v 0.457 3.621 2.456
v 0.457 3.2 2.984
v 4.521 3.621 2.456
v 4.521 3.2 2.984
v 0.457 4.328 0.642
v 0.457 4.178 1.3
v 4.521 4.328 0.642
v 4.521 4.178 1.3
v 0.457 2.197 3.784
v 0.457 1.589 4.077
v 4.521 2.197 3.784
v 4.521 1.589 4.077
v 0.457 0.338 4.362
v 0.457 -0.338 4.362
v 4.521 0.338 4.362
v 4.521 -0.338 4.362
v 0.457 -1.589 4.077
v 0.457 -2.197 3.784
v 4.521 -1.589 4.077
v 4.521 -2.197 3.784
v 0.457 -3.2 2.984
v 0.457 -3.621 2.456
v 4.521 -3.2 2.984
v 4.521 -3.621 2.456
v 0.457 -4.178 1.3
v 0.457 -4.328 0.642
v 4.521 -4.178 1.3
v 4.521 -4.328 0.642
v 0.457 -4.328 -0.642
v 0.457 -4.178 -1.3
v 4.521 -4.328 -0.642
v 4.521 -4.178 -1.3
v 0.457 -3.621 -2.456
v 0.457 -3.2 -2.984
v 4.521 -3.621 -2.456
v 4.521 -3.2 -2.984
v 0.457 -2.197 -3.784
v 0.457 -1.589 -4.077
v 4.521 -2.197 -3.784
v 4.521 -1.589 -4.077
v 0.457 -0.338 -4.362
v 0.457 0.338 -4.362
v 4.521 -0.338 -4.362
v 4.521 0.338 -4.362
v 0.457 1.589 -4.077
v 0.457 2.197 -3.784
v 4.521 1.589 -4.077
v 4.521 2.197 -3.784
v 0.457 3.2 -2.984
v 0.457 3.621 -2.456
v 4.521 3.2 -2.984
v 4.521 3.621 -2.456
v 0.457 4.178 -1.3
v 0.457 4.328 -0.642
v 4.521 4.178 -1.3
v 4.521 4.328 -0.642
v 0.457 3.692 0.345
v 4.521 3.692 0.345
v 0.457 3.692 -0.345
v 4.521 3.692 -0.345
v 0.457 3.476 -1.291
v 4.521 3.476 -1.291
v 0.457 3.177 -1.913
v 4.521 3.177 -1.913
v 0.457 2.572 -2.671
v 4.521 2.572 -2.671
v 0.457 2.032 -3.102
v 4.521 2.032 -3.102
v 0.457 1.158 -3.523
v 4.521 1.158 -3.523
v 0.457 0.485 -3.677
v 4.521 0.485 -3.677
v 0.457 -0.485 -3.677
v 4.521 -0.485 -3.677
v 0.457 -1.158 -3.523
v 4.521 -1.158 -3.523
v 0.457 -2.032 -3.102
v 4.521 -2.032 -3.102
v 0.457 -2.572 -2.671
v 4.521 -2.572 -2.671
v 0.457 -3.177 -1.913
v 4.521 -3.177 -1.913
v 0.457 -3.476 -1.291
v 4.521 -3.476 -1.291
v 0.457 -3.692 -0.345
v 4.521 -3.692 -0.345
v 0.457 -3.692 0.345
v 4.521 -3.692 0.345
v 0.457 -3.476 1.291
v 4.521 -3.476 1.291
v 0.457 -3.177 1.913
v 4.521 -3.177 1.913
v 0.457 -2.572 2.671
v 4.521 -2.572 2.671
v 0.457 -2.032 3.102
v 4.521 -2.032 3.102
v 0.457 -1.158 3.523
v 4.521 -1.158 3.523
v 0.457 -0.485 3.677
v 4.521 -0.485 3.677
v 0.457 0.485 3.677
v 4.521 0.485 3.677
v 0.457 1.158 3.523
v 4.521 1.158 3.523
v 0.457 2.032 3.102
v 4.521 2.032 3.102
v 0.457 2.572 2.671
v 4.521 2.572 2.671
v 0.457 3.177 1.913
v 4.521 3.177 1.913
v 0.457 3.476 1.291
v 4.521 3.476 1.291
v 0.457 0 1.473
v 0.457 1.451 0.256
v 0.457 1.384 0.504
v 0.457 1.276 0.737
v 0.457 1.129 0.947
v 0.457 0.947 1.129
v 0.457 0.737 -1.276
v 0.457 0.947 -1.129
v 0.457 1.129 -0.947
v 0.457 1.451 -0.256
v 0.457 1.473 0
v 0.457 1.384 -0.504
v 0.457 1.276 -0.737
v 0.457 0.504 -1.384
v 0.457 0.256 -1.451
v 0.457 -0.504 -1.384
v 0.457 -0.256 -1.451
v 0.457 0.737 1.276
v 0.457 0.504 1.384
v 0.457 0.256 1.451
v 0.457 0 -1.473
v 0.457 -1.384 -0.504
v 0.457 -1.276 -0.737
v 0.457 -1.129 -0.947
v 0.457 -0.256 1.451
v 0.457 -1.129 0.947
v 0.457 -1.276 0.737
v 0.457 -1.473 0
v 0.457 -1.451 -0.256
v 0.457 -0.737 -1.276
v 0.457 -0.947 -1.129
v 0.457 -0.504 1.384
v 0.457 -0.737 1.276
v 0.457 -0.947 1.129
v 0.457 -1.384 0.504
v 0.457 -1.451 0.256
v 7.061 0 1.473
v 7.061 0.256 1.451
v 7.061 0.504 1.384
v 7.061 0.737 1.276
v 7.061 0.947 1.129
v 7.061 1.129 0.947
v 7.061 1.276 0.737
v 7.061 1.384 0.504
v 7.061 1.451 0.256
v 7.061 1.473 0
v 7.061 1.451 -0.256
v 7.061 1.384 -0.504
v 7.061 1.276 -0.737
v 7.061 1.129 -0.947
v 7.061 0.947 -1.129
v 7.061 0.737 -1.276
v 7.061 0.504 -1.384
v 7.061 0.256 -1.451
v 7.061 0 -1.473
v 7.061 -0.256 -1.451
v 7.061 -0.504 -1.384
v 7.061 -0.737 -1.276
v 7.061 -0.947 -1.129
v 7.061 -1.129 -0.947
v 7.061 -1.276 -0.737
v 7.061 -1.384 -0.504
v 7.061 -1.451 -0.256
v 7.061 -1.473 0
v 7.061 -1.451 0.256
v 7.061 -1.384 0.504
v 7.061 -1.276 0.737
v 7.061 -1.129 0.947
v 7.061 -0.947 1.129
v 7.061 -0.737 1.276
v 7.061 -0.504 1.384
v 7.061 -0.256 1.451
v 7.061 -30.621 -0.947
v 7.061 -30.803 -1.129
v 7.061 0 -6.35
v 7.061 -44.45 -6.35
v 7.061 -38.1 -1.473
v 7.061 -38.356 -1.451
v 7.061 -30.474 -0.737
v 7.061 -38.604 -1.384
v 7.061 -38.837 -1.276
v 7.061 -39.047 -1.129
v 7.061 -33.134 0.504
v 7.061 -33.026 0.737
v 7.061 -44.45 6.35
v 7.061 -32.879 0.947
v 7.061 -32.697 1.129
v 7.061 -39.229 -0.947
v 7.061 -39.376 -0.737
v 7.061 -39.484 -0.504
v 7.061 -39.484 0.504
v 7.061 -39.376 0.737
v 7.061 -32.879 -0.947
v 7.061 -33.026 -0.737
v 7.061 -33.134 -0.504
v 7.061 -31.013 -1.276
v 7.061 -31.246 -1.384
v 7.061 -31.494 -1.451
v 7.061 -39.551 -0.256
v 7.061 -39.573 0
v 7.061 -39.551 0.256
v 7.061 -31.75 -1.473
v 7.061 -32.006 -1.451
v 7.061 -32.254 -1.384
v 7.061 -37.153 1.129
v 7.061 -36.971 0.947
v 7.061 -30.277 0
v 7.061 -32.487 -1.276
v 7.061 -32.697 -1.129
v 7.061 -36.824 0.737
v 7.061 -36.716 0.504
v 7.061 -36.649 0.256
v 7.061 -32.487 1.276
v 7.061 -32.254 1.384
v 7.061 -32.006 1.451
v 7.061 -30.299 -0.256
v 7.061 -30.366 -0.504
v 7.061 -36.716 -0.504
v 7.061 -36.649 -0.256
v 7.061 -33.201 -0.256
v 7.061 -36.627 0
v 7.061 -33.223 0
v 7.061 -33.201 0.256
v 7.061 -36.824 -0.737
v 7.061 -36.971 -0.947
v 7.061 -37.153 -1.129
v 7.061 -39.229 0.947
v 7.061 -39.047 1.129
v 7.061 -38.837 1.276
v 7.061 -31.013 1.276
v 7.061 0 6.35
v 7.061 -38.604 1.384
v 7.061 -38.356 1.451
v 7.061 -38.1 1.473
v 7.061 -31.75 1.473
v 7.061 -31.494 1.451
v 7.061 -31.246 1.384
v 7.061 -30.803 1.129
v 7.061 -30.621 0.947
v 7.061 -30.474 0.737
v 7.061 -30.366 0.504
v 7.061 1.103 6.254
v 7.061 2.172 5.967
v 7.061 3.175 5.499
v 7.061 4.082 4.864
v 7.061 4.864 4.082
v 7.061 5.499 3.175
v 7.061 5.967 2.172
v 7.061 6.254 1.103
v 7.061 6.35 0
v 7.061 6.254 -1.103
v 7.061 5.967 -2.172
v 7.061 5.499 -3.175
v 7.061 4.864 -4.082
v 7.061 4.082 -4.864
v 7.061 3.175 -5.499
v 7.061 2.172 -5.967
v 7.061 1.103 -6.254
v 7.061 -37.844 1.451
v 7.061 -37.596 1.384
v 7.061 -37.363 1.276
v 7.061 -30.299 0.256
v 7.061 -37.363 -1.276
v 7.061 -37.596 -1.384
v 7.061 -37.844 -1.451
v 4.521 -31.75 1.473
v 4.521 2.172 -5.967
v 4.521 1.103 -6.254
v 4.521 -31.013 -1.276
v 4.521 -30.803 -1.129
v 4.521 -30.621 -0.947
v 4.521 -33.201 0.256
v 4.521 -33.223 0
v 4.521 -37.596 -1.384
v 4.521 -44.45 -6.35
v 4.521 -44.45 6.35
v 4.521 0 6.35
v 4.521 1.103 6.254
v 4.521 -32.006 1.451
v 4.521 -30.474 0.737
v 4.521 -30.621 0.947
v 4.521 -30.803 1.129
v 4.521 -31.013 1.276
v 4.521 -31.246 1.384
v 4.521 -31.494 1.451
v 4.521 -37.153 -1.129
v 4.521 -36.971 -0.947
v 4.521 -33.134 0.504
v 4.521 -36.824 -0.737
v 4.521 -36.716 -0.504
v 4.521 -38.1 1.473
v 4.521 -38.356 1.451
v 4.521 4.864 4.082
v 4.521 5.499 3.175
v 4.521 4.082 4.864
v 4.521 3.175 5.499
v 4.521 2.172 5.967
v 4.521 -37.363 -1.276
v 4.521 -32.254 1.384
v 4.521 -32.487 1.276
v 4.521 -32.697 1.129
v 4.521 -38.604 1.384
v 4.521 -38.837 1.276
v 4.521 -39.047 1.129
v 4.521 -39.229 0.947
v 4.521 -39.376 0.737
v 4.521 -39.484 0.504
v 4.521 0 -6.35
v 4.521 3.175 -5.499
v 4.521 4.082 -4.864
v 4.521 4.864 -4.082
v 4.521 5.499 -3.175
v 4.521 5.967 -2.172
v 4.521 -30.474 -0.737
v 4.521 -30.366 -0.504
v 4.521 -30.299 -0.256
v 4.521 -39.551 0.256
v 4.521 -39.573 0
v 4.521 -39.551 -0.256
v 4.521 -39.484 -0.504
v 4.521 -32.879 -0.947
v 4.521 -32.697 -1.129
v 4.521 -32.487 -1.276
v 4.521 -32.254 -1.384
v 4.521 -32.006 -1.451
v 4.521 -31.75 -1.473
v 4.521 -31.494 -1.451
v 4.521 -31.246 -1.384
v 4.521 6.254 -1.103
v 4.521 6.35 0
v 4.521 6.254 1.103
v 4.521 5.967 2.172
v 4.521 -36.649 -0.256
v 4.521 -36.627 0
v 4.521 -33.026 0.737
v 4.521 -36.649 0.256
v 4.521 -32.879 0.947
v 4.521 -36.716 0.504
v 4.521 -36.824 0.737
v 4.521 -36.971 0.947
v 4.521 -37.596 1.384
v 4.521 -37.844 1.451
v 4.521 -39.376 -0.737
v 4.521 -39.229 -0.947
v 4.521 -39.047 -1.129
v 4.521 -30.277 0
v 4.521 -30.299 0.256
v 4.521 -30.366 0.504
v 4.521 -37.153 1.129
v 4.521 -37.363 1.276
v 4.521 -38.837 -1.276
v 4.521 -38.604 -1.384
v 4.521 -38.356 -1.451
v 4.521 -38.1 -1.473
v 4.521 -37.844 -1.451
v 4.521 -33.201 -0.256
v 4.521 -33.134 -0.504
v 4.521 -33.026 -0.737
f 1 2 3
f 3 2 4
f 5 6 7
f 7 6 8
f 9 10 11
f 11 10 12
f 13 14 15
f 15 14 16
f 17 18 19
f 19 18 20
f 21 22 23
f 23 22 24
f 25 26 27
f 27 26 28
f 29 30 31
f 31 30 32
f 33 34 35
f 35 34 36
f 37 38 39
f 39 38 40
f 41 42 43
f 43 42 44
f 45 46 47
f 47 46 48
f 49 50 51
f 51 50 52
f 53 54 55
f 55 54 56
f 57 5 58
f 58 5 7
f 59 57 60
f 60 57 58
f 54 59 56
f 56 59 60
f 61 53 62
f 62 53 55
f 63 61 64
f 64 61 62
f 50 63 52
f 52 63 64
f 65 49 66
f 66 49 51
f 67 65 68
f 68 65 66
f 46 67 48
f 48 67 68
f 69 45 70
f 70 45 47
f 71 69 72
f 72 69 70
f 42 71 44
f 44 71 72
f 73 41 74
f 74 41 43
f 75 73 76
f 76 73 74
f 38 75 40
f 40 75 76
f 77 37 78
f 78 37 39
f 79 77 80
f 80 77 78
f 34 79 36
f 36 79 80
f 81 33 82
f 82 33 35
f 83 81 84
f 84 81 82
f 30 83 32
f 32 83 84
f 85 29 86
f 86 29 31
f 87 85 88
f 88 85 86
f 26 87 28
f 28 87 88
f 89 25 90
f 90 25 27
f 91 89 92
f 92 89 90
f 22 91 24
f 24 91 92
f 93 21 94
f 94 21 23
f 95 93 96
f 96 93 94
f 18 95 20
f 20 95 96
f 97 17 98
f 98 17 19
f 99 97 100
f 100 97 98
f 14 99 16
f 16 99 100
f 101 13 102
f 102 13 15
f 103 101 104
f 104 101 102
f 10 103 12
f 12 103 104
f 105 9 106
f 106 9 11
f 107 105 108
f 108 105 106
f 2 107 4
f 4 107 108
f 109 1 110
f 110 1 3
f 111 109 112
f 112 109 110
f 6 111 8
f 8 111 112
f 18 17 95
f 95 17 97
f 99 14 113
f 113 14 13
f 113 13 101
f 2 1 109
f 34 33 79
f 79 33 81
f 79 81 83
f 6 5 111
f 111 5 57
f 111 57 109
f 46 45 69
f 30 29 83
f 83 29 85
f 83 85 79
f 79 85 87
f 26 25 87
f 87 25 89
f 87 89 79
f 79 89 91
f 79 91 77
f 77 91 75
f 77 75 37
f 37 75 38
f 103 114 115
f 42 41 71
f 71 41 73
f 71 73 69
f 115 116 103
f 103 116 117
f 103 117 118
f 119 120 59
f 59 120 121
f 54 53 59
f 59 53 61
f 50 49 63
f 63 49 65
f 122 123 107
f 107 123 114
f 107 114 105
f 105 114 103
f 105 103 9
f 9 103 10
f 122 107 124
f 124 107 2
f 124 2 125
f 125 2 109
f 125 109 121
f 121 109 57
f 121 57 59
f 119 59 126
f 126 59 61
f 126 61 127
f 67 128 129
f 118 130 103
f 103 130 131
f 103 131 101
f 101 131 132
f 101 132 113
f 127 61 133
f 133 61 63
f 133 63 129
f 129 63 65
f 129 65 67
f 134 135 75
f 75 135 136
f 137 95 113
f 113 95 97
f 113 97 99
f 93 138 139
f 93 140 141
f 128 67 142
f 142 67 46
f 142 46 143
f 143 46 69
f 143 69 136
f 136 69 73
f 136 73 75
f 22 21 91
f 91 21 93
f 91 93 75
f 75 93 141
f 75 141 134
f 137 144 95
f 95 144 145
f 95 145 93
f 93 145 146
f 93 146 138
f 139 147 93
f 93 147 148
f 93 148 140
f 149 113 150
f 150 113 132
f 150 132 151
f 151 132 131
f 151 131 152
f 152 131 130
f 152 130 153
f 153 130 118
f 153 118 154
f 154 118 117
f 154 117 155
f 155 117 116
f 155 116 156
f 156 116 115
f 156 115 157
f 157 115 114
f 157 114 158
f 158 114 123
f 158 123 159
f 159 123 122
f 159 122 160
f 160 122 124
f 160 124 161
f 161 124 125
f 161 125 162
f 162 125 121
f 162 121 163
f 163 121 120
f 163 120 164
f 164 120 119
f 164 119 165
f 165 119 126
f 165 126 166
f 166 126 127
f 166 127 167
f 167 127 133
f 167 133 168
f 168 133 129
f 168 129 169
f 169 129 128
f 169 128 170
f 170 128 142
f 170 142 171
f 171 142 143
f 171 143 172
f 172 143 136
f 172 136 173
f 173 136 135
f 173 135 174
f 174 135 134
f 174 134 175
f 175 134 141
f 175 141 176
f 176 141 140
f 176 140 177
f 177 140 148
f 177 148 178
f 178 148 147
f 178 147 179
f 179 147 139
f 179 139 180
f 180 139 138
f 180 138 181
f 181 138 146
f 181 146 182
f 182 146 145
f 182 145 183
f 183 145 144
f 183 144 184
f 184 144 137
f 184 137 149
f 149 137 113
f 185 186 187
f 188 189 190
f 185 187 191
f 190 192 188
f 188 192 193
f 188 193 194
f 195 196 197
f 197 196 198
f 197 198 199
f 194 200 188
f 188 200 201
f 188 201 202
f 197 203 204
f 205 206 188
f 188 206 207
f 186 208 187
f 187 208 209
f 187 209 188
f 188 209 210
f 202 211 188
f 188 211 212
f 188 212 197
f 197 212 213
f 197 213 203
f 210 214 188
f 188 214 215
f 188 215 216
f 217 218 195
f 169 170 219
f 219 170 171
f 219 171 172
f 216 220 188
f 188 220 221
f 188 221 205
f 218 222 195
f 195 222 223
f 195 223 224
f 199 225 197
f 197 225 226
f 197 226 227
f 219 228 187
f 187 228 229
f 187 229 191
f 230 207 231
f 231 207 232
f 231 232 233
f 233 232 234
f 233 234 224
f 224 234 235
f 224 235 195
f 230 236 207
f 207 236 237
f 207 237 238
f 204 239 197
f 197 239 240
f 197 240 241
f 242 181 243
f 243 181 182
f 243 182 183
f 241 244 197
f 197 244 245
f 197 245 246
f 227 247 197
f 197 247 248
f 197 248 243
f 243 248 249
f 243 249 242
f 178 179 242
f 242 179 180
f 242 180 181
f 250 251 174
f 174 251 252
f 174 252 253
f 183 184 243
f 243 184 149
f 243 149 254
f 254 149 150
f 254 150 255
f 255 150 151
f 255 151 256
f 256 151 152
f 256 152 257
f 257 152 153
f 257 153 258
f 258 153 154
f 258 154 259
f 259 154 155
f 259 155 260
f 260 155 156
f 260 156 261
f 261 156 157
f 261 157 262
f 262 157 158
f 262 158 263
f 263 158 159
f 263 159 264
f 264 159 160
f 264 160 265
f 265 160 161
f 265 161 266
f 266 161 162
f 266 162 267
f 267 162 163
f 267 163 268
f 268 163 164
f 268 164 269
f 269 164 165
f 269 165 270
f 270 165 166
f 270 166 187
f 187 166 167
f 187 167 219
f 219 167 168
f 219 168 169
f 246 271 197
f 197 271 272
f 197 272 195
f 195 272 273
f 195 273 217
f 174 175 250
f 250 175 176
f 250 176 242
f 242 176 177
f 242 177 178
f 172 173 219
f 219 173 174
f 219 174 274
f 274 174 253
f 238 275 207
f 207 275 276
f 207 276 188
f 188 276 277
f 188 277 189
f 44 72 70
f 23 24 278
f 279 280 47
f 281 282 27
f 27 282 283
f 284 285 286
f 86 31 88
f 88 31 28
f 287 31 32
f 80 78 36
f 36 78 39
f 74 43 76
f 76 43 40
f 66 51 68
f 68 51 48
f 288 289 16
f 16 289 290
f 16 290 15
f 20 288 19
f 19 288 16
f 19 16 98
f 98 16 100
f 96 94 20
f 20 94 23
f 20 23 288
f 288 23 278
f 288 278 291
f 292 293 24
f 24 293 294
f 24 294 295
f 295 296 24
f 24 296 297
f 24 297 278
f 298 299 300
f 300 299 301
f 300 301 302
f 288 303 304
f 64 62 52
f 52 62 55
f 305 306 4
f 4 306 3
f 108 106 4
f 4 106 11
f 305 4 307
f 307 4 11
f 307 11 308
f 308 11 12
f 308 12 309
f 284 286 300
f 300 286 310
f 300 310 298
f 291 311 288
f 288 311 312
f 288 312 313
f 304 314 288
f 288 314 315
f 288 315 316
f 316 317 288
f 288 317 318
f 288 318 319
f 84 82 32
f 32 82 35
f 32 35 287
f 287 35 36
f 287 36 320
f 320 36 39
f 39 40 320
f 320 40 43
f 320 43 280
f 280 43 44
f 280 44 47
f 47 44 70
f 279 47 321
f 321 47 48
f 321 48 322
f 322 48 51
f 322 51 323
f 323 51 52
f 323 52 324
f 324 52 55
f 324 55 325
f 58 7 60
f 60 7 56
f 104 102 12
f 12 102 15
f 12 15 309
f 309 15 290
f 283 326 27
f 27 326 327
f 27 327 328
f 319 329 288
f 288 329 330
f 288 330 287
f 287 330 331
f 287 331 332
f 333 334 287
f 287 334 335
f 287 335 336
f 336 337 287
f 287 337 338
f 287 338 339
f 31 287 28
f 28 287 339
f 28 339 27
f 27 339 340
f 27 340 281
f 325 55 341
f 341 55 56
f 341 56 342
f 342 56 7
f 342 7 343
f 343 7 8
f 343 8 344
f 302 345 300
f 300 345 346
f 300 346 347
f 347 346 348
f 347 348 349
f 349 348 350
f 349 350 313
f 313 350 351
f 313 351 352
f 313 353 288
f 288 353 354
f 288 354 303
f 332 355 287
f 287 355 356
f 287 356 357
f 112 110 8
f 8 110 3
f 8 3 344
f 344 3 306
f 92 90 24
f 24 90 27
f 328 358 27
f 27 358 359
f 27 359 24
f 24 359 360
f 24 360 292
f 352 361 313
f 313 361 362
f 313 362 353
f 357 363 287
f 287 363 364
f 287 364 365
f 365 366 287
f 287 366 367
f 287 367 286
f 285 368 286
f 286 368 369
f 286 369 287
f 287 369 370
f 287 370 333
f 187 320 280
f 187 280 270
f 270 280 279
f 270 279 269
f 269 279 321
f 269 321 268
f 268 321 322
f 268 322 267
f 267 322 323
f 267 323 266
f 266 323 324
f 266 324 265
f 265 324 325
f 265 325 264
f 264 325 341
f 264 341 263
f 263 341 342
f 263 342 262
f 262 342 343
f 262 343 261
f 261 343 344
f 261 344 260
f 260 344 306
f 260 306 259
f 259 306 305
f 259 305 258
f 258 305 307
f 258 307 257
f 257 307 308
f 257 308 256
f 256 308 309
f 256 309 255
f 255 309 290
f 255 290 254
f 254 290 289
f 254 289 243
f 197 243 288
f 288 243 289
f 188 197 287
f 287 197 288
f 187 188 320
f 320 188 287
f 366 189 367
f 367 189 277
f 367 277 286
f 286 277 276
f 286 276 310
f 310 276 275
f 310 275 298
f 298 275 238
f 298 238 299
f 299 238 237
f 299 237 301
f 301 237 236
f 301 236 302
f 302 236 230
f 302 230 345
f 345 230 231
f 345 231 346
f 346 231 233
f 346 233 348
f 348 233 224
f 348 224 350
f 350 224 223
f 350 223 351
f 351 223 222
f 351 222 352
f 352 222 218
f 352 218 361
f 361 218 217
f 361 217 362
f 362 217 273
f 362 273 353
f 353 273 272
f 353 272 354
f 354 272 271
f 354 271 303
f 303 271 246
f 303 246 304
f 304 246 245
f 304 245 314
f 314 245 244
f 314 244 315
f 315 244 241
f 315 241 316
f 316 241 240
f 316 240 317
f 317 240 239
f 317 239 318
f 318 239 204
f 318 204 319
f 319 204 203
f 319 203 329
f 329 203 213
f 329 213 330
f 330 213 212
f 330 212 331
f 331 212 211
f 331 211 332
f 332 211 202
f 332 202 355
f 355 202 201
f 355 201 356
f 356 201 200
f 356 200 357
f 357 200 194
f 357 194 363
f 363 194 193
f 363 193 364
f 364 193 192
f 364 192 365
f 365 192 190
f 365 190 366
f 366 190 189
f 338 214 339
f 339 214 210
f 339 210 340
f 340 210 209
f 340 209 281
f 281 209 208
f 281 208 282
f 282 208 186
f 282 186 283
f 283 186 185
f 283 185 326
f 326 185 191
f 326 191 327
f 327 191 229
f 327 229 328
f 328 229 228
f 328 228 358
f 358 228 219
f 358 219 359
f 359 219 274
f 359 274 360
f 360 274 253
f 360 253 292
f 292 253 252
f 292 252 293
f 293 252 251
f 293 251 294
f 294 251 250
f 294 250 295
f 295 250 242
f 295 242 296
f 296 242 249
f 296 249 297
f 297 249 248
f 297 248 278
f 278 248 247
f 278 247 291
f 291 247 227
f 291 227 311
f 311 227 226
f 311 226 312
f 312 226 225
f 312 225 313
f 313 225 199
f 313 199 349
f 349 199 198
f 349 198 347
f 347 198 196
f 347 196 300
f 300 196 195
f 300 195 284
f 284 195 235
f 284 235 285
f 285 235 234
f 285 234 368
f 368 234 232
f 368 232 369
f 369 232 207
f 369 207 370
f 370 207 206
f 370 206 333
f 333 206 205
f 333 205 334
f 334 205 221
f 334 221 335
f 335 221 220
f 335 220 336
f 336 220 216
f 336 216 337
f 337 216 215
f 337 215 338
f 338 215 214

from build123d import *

# Parameters (mm, degrees)
SKETCH4_R             = 4.5339
SKETCH4_R_2           = 4.37515
CUT_EXTRUDE2_DEPTH    = 4.064
CUT_EXTRUDE1_DEPTH    = 4.064
CIRPATTERN1_COUNT     = 14
SKETCH6_R             = 1.5875
CUT_EXTRUDE3_DEPTH    = 12.02520933
CUT_EXTRUDE4_DEPTH    = 1.016
SKETCH11_R            = 6.731
CUT_EXTRUDE6_DEPTH    = 2.54
SKETCH13_R            = 9.525
CUT_EXTRUDE7_DEPTH    = 12.262802402
BOSS_EXTRUDE2_START   = -4.064
SKETCH17_R            = 1.5875
SKETCH17_R_2          = 1.4732
BOSS_EXTRUDE2_DEPTH   = 4.064
BOSS_EXTRUDE1_START   = 2.54
SKETCH12_R            = 1.4732
BOSS_EXTRUDE1_DEPTH   = 2.54
F_4_CLEARANCE_HOLE1_D = 2.9464


with BuildPart() as part:
    # Sketch1 → Revolve1 (revolve)
    with BuildSketch(Plane.XY, mode=Mode.PRIVATE) as revolve1_sk:
        with BuildLine():
            Line((-5.5626, 1.5875), (5.5626, 1.5875))
            Line((5.5626, 1.5875), (5.5626, 6.731))
            Line((5.5626, 6.731), (5.0419, 6.731))
            ThreePointArc((5.0419, 6.731), (4.654552953, 5.958878742), (4.5212, 5.1054))
            Line((4.5212, 5.1054), (4.5212, 4.5339))
            Line((4.5212, 4.5339), (0.4572, 4.5339))
            Line((0.4572, 4.5339), (0.4572, 5.6769))
            Line((0.4572, 5.6769), (-0.5969, 6.731))
            Line((-0.5969, 6.731), (-5.5626, 6.731))
            Line((-5.5626, 6.731), (-5.5626, 1.5875))
        make_face()
    revolve(revolve1_sk.sketch.rotate(Axis((-5.5626, 0, 0), (1, 0, 0)), 90), axis=Axis((-5.5626, 0, 0), (1, 0, 0)))

    # Sketch4 → Cut-Extrude2 (cut)
    with BuildSketch(Plane(origin=(0.4572, 0, 0), x_dir=(0, 0, -1), z_dir=(1, 0, 0))):
        Circle(SKETCH4_R)
        Circle(SKETCH4_R_2, mode=Mode.SUBTRACT)
    extrude(amount=CUT_EXTRUDE2_DEPTH, mode=Mode.SUBTRACT)

    # Sketch3 → Cut-Extrude1 (cut)
    with BuildSketch(Plane(origin=(0.4572, 0, 0), x_dir=(0, 0, -1), z_dir=(1, 0, 0))):
        with BuildLine():
            Line((-0.641613493, 4.327848154), (-0.345249615, 3.692293767))
            Line((-0.345249615, 3.692293767), (0.345249615, 3.692293767))
            Line((0.345249615, 3.692293767), (0.641613493, 4.327848154))
            ThreePointArc((0.641613493, 4.327848154), (0, 4.37515), (-0.641613493, 4.327848154))
        make_face()
    cut_extrude1 = extrude(amount=CUT_EXTRUDE1_DEPTH, mode=Mode.SUBTRACT)

    # CirPattern1: Cut-Extrude1 ×14 about axis
    cirpattern1_axis = Axis((0, 0, 0), (1, 0, 0))
    for i in range(1, CIRPATTERN1_COUNT):
        add(cut_extrude1.rotate(cirpattern1_axis, i * 360 / CIRPATTERN1_COUNT), mode=Mode.SUBTRACT)

    # Sketch6 → Cut-Extrude3 (cut, through all)
    with BuildSketch(Plane(origin=(0, 0, 0), x_dir=(1, 0, 0), z_dir=(0, 1, 0))):
        with Locations(Location((-2.5527, 0, 0), (0, 0, 90))):
            Circle(SKETCH6_R)
    extrude(amount=CUT_EXTRUDE3_DEPTH, mode=Mode.SUBTRACT)

    # Sketch11 → Cut-Extrude6 (cut)
    with BuildSketch(Plane.ZY.offset(-4.5212)):
        Circle(SKETCH11_R)
    extrude(amount=-CUT_EXTRUDE6_DEPTH, mode=Mode.SUBTRACT)


with BuildPart() as body_2:
    # Sketch7 → Revolve2 (revolve)
    with BuildSketch(Plane.XY, mode=Mode.PRIVATE) as revolve2_sk:
        Polygon((-3.7211, 6.731), (-2.5527, 6.731), (-2.5527, 1.9685), (-3.7211, 1.9685), (-3.9751, 2.2225), (-3.9751, 6.477), align=None)
    revolve(revolve2_sk.sketch.rotate(Axis((-2.5527, 1.9685, 0), (0, 1, 0)), 270), axis=Axis((-2.5527, 1.9685, 0), (0, 1, 0)))

    # Sketch8 → Cut-Extrude4 (cut)
    with BuildSketch(Plane(origin=(0, 6.731, 0), x_dir=(1, 0, 0), z_dir=(0, 1, 0))):
        Polygon((-2.5527, 0.821223023), (-3.2639, 0.410611511), (-3.2639, -0.410611511), (-2.5527, -0.821223023), (-1.8415, -0.410611511), (-1.8415, 0.410611511), align=None)
    extrude(amount=-CUT_EXTRUDE4_DEPTH, mode=Mode.SUBTRACT)


with BuildPart() as cut_extrude7_tool:
    # Sketch13 → Cut-Extrude7 (new, through all)
    with BuildSketch(Plane(origin=(0.4572, 0, 0), x_dir=(0, 0, -1), z_dir=(1, 0, 0))):
        Circle(SKETCH13_R)
    extrude(amount=-CUT_EXTRUDE7_DEPTH)


with BuildPart() as part_1:
    add(part.part)

    # Cut-Extrude7: cut by cut_extrude7_tool
    add(cut_extrude7_tool.part, mode=Mode.SUBTRACT)

    # Sketch17 → Boss-Extrude2 (add)
    with BuildSketch(Plane.ZY.offset(-0.4572).offset(BOSS_EXTRUDE2_START)):
        Circle(SKETCH17_R)
        Circle(SKETCH17_R_2, mode=Mode.SUBTRACT)
    extrude(amount=BOSS_EXTRUDE2_DEPTH)

    # Sketch12 → Boss-Extrude1 (add)
    with BuildSketch(Plane(origin=(4.5212, 0, 0), x_dir=(0, 0, -1), z_dir=(1, 0, 0)).offset(BOSS_EXTRUDE1_START)):
        with BuildLine():
            Line((6.35, 0), (6.35, -44.45))
            Line((6.35, -44.45), (-6.35, -44.45))
            Line((-6.35, -44.45), (-6.35, 0))
            ThreePointArc((-6.35, 0), (0, 6.35), (6.35, 0))
        make_face()
        with Locations(Location((0, 0, 0), (0, 0, 180))):
            Circle(SKETCH12_R, mode=Mode.SUBTRACT)
    extrude(amount=-BOSS_EXTRUDE1_DEPTH)

    # #4 Clearance Hole1 (through all)
    with Locations(Plane(origin=(7.0612, 0, 0), x_dir=(0, 0, -1), z_dir=(1, 0, 0))):
        with Locations((0, -31.75), (0, -38.1)):
            Hole(F_4_CLEARANCE_HOLE1_D / 2)


with BuildPart() as body_2_1:
    add(body_2.part)

    # Cut-Extrude7: cut by cut_extrude7_tool
    add(cut_extrude7_tool.part, mode=Mode.SUBTRACT)


solid = part_1.part
